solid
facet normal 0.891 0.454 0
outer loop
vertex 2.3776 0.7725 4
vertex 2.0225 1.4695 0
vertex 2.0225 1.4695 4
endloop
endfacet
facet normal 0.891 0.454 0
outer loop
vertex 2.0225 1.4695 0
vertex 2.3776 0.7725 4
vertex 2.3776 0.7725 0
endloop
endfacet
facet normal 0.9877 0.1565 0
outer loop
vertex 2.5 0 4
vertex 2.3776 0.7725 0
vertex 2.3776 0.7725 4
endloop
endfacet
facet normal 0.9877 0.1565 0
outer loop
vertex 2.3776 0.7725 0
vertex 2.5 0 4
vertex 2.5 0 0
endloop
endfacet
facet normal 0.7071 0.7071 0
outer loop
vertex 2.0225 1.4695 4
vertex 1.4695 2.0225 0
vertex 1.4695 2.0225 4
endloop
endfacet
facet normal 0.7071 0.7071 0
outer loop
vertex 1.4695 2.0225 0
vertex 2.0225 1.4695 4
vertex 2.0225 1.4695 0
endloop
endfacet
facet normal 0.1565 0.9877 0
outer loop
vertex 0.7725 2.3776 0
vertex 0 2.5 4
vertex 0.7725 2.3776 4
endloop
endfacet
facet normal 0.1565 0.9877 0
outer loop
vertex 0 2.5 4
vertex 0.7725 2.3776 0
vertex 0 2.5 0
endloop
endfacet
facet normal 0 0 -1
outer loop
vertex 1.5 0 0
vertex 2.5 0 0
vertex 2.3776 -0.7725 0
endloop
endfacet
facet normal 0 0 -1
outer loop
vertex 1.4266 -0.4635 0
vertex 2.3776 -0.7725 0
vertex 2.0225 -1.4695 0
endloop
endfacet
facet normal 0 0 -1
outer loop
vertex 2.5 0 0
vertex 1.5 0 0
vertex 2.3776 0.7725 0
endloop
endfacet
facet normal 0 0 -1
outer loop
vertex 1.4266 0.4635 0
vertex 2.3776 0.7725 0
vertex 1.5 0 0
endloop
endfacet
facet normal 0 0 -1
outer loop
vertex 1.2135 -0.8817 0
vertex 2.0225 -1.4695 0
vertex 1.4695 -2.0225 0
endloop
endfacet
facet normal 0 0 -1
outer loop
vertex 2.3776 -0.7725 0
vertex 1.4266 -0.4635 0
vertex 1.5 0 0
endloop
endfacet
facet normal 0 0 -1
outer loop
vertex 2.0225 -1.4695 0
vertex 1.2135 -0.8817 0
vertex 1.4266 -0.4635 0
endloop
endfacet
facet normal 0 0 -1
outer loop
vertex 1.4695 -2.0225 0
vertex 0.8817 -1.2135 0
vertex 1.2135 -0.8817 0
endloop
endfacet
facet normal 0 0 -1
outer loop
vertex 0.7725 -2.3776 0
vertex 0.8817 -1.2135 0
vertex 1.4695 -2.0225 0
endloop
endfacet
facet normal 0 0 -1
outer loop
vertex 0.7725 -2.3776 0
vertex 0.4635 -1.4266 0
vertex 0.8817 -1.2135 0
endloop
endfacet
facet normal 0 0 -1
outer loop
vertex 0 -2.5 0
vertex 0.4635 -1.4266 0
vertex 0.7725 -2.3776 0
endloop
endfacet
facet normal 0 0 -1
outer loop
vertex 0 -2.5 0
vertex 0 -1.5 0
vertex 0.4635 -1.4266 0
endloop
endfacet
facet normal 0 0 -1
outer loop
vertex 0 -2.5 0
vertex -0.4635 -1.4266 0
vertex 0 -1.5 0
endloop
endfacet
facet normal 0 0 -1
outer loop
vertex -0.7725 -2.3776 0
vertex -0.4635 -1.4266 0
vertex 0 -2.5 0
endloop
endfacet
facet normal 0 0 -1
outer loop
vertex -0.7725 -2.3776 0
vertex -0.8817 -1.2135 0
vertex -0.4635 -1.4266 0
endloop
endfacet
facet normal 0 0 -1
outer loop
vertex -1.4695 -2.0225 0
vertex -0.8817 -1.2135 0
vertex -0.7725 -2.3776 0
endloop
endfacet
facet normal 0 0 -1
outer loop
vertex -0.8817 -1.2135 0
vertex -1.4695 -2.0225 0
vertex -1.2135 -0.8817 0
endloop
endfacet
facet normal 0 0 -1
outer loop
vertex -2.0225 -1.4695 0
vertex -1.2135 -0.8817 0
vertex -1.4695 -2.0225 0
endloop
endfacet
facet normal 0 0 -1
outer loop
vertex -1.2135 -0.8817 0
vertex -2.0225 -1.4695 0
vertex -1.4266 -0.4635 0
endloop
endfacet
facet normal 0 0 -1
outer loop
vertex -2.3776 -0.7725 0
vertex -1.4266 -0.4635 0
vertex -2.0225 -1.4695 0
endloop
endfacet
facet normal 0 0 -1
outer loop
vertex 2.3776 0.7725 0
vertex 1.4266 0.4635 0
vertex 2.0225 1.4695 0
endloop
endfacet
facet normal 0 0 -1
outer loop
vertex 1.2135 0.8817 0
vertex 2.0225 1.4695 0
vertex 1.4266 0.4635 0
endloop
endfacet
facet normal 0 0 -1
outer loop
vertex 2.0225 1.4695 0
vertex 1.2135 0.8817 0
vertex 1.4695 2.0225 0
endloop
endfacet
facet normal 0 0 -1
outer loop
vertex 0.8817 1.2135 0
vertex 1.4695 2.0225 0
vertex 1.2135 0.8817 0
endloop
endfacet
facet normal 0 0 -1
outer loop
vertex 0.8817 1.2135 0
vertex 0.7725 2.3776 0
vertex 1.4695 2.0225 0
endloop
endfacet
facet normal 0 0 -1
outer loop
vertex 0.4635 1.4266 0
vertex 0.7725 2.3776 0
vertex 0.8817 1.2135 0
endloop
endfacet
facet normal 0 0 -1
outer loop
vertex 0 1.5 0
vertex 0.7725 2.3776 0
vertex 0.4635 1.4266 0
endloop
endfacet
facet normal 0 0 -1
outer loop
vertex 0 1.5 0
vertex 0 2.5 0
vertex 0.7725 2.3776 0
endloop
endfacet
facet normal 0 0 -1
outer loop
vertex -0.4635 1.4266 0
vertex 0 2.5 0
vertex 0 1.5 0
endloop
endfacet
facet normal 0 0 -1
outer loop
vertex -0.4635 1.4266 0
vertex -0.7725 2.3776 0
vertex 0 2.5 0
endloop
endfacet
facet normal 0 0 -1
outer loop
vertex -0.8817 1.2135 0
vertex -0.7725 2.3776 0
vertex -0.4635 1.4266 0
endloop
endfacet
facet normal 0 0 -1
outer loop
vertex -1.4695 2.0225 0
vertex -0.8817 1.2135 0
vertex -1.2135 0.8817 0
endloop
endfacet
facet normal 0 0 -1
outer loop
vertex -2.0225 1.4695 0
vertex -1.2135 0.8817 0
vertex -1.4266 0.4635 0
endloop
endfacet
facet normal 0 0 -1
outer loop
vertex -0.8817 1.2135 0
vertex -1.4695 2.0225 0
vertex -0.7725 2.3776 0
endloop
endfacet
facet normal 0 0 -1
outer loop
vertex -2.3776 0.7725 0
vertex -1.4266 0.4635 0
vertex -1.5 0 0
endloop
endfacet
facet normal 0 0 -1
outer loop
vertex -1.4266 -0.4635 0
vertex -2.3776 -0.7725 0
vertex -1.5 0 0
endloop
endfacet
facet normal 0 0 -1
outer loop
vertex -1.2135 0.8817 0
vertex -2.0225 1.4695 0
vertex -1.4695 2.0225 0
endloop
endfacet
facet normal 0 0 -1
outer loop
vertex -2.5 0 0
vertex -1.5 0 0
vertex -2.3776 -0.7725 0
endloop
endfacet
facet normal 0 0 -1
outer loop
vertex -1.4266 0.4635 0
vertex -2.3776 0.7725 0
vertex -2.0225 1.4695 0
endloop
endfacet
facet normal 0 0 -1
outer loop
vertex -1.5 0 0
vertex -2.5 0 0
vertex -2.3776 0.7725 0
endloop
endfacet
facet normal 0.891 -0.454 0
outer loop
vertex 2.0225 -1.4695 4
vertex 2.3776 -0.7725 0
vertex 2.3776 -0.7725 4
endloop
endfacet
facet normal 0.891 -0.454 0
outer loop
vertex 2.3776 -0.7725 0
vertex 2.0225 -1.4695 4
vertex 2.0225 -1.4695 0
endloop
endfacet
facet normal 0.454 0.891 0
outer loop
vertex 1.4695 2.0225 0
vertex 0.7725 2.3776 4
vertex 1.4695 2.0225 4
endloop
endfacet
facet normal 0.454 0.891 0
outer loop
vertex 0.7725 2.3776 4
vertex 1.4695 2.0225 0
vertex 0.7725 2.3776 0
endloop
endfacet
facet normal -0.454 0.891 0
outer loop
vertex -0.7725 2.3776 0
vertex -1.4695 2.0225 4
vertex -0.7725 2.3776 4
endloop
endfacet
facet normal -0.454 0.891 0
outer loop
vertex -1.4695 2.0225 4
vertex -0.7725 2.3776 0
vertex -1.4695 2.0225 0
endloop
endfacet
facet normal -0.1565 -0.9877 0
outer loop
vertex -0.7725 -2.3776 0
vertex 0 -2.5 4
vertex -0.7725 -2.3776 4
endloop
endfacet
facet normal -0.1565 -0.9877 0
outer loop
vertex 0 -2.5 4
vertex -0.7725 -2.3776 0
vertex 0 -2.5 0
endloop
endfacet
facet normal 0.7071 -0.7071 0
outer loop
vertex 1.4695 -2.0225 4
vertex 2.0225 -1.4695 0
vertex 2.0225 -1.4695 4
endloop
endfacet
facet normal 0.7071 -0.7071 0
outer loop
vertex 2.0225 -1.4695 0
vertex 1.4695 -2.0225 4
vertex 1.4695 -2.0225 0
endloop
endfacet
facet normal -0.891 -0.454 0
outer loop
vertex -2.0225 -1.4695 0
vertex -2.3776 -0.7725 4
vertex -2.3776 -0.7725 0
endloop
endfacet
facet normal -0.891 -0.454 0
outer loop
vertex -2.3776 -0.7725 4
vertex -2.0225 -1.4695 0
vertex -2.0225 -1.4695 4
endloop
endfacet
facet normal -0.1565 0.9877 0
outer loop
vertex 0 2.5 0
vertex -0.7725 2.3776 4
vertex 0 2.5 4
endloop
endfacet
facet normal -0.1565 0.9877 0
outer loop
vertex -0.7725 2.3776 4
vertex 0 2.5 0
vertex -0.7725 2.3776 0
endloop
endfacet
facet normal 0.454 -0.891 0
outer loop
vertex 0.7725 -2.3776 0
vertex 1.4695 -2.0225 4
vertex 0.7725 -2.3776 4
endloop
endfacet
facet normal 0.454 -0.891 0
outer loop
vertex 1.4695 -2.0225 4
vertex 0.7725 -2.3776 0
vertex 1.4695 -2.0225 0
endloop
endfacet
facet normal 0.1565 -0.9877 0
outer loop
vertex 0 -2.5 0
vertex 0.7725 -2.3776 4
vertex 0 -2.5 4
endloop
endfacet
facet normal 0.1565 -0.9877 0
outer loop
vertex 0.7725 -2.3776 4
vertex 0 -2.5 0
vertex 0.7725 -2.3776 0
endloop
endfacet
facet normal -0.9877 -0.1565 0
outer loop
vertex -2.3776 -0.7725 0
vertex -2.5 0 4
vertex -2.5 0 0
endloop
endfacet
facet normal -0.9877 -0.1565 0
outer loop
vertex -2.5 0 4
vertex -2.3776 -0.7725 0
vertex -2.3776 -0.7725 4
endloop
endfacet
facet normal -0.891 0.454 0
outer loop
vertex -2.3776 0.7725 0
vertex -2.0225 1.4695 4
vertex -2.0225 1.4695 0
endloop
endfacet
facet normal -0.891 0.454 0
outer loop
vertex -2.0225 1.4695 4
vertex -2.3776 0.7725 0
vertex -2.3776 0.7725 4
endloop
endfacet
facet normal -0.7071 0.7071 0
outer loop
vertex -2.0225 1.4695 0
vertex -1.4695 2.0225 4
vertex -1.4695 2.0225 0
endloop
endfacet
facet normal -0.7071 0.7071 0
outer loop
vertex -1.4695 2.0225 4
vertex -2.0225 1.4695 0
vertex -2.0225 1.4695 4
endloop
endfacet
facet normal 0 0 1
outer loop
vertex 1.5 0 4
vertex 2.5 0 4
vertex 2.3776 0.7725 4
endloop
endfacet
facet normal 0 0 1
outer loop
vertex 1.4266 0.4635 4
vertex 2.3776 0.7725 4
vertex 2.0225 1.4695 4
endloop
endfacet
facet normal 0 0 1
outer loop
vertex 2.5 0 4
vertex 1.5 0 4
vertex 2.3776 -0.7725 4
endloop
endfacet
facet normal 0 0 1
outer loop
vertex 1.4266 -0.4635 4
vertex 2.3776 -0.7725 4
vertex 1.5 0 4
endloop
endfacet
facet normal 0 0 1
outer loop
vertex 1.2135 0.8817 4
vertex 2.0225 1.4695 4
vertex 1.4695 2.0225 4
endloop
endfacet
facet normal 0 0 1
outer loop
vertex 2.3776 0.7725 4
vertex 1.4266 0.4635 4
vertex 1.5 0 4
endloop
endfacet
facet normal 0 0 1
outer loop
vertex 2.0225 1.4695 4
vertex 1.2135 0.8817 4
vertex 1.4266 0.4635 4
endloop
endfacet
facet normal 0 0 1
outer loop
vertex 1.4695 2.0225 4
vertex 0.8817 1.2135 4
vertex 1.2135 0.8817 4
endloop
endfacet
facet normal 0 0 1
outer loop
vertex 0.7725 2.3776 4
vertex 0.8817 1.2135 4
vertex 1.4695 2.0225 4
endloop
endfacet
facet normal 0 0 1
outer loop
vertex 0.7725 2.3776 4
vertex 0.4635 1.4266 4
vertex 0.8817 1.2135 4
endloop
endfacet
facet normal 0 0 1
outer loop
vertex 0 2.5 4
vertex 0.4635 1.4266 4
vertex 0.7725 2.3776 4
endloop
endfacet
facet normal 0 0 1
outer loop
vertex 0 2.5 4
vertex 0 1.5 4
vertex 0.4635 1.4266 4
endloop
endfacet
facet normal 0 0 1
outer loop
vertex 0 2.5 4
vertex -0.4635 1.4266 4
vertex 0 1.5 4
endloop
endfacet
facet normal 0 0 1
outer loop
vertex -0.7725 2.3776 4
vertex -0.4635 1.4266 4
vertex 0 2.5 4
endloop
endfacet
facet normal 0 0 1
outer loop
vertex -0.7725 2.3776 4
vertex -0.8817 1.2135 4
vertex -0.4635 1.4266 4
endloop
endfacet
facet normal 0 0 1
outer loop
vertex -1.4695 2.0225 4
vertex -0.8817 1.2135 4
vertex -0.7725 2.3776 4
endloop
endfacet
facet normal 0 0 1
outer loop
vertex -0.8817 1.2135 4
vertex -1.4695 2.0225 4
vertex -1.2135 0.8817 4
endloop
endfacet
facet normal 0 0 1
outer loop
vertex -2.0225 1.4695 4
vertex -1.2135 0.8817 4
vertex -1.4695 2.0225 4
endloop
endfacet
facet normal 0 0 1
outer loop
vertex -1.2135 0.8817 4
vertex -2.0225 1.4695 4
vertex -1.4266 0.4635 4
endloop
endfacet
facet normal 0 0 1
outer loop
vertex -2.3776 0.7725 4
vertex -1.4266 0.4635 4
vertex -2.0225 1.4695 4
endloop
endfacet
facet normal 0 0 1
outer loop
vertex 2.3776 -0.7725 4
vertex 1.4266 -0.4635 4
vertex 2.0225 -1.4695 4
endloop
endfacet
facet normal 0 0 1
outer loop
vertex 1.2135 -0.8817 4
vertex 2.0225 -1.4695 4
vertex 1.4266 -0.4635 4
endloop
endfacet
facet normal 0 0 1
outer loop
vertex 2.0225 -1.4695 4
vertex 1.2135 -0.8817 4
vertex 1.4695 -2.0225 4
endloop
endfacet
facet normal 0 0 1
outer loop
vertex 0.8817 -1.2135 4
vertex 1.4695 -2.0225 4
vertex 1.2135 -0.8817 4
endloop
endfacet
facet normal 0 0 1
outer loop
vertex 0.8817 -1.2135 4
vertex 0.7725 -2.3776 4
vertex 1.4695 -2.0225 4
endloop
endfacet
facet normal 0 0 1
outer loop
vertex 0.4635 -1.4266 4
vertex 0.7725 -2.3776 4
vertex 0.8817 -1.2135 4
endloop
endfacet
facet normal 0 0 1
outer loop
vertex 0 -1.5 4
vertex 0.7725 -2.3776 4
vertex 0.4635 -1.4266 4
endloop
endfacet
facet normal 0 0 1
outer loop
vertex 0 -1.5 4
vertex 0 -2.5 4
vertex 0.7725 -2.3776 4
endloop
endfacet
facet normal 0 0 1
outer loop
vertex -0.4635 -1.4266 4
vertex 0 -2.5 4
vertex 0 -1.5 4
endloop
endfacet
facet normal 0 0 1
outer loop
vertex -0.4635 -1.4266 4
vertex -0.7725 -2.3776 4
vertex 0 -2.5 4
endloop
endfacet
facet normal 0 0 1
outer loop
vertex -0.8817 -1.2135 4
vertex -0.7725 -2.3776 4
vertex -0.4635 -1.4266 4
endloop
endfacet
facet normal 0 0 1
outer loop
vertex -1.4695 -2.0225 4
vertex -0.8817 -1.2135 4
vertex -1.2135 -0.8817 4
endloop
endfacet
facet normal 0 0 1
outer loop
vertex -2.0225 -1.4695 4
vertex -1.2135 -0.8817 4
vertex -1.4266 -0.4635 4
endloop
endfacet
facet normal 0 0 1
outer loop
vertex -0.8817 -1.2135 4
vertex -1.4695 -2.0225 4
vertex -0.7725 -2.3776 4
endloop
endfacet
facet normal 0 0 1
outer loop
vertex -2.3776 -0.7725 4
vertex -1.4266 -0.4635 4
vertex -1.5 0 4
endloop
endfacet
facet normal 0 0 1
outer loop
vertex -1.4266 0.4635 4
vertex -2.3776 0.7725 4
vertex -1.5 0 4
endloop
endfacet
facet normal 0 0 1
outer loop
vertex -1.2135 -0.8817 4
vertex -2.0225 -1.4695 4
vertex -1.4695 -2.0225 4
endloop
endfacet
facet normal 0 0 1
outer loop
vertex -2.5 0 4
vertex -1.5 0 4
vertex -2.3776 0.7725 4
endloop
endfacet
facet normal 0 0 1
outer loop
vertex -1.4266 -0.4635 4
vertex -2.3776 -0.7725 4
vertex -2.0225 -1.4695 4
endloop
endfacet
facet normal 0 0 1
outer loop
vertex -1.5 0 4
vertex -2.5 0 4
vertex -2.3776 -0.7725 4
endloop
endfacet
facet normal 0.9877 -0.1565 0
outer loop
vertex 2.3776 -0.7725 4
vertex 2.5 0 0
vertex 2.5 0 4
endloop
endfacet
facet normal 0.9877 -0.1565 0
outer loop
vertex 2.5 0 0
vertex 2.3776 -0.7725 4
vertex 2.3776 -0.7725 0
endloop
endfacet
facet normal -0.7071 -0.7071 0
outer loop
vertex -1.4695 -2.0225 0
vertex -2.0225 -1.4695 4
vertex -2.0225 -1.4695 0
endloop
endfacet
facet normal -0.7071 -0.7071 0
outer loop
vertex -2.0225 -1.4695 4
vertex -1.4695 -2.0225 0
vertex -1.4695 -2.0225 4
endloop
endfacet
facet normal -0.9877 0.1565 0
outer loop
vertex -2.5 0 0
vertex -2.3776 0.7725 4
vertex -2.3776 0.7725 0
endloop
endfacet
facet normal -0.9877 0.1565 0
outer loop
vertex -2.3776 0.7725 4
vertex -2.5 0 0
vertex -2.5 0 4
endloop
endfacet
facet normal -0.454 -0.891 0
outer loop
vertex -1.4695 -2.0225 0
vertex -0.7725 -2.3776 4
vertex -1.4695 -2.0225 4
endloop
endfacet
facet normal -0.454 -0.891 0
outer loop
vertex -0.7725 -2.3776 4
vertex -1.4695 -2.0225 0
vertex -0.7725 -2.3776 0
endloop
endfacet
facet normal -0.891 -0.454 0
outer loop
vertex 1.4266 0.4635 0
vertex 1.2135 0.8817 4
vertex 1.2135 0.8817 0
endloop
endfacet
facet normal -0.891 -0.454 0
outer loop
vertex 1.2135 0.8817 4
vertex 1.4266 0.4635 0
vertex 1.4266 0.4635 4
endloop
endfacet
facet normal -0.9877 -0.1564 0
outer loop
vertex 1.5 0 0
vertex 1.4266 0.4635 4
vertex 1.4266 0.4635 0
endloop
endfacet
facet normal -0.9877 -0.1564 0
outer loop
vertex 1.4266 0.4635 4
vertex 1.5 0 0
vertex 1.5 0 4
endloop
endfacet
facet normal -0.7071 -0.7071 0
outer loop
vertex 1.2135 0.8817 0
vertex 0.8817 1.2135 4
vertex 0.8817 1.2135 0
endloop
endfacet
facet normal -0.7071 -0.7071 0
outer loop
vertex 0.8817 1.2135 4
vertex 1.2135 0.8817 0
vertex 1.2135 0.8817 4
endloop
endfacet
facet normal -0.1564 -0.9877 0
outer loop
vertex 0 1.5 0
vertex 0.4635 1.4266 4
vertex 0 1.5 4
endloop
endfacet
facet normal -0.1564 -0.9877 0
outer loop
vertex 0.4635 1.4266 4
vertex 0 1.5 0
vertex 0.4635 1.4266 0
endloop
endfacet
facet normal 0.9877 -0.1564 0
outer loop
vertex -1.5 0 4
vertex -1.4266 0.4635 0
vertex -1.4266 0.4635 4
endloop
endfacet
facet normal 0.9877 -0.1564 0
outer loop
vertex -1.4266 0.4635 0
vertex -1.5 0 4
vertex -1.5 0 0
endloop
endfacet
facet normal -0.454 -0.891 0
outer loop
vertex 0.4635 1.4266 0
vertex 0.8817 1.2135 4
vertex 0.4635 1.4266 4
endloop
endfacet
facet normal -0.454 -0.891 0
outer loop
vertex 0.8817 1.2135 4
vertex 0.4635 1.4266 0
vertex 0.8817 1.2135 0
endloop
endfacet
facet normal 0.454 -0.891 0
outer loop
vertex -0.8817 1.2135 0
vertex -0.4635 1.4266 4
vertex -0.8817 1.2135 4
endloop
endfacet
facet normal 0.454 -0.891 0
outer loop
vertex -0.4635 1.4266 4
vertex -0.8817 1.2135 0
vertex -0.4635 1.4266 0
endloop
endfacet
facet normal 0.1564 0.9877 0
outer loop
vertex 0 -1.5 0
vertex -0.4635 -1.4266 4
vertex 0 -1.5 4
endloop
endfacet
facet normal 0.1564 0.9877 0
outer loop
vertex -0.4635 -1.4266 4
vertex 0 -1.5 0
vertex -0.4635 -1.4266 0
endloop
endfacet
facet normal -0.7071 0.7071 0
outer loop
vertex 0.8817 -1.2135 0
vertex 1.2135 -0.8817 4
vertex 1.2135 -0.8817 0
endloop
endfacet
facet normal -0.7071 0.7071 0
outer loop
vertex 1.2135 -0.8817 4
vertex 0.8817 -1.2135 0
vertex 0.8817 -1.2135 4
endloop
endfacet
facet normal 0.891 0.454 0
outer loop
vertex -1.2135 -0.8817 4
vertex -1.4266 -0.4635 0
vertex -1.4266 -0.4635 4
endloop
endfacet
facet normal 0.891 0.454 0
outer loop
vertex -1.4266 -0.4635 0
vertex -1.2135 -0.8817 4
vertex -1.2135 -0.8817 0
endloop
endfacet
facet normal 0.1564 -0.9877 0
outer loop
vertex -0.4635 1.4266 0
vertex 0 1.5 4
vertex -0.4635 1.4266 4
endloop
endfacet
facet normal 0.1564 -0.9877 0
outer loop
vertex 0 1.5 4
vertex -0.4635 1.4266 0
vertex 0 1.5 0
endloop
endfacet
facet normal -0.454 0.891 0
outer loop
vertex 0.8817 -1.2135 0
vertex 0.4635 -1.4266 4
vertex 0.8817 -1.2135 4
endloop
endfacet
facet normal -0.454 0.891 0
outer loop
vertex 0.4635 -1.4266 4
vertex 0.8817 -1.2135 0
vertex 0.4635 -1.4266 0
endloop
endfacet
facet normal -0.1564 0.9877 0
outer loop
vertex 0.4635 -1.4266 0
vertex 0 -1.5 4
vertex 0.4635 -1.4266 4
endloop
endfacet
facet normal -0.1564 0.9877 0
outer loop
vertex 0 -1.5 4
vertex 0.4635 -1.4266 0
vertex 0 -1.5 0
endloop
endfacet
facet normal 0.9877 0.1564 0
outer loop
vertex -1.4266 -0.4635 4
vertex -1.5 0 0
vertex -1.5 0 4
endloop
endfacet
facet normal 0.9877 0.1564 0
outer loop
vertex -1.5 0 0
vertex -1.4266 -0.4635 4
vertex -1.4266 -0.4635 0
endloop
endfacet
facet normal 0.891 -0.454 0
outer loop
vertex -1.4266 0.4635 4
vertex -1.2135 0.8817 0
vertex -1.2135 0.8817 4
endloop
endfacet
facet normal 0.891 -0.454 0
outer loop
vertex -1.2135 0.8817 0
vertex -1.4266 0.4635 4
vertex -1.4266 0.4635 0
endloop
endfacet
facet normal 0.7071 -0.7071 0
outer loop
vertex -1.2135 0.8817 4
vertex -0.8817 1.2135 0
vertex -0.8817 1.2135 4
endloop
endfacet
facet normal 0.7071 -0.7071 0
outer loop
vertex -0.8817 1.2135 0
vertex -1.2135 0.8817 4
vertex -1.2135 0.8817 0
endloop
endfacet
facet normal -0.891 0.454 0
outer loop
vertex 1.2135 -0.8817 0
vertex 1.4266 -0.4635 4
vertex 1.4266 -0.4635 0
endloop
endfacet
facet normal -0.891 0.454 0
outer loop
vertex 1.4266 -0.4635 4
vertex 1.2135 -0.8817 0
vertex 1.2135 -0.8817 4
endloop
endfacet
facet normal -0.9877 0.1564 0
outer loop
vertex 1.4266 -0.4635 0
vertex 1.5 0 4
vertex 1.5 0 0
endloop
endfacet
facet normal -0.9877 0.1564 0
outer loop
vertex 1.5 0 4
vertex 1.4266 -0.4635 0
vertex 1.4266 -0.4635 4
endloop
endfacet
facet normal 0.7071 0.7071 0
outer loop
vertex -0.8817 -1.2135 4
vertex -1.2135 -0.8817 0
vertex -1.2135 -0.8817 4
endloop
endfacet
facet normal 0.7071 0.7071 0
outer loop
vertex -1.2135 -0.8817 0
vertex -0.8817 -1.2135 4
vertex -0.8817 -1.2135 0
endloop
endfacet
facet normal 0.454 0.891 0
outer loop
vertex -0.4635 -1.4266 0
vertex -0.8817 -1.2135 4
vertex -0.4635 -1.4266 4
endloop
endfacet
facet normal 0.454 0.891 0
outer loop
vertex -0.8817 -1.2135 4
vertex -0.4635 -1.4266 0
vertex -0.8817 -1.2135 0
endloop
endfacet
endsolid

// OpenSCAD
// file: settings.scad
/*
 * SPDX-FileCopyrightText: 2022 Rafael G. Martins <rafael@rafaelmartins.eng.br>
 * SPDX-License-Identifier: CERN-OHL-S-2.0
 */

thickness = 2;

pcb_width = 72.39;
pcb_length = 27.94;
pcb_screw_distance_x = 66.04;
pcb_screw_distance_y = 21.59;
pcb_screw_padding = 3.175;
pcb_screw_base_height = 8.5;
pcb_screw_base_d = 5;
pcb_screw_d = 2;
pcb_padding_x = thickness + 0.5;
pcb_padding_y = 5;
pcb_pin0_x = 3.81;
pcb_pin0_y = -0.635;
pcb_pin_distance = 2.54;

pcbs_spacer_height = 4;

width = pcb_width + 2 * pcb_padding_x;
length = pcb_length + 2 * pcb_padding_y + pcb_pin_distance;
height = 2 * thickness + 28;

screw_d = 2;
screw_h = 7;
screw_distance_x = width - 4;
screw_distance_y = length - 4;

cable_d = 4.4;

gap = thickness * 0.2;
// main file
/*
 * SPDX-FileCopyrightText: 2022 Rafael G. Martins <rafael@rafaelmartins.eng.br>
 * SPDX-License-Identifier: CERN-OHL-S-2.0
 */

include <settings.scad>

difference() {
    cylinder(pcbs_spacer_height, d=pcb_screw_base_d, $fn=20);
    cylinder(pcbs_spacer_height, d=pcb_screw_d + 1, $fn=20);
}
